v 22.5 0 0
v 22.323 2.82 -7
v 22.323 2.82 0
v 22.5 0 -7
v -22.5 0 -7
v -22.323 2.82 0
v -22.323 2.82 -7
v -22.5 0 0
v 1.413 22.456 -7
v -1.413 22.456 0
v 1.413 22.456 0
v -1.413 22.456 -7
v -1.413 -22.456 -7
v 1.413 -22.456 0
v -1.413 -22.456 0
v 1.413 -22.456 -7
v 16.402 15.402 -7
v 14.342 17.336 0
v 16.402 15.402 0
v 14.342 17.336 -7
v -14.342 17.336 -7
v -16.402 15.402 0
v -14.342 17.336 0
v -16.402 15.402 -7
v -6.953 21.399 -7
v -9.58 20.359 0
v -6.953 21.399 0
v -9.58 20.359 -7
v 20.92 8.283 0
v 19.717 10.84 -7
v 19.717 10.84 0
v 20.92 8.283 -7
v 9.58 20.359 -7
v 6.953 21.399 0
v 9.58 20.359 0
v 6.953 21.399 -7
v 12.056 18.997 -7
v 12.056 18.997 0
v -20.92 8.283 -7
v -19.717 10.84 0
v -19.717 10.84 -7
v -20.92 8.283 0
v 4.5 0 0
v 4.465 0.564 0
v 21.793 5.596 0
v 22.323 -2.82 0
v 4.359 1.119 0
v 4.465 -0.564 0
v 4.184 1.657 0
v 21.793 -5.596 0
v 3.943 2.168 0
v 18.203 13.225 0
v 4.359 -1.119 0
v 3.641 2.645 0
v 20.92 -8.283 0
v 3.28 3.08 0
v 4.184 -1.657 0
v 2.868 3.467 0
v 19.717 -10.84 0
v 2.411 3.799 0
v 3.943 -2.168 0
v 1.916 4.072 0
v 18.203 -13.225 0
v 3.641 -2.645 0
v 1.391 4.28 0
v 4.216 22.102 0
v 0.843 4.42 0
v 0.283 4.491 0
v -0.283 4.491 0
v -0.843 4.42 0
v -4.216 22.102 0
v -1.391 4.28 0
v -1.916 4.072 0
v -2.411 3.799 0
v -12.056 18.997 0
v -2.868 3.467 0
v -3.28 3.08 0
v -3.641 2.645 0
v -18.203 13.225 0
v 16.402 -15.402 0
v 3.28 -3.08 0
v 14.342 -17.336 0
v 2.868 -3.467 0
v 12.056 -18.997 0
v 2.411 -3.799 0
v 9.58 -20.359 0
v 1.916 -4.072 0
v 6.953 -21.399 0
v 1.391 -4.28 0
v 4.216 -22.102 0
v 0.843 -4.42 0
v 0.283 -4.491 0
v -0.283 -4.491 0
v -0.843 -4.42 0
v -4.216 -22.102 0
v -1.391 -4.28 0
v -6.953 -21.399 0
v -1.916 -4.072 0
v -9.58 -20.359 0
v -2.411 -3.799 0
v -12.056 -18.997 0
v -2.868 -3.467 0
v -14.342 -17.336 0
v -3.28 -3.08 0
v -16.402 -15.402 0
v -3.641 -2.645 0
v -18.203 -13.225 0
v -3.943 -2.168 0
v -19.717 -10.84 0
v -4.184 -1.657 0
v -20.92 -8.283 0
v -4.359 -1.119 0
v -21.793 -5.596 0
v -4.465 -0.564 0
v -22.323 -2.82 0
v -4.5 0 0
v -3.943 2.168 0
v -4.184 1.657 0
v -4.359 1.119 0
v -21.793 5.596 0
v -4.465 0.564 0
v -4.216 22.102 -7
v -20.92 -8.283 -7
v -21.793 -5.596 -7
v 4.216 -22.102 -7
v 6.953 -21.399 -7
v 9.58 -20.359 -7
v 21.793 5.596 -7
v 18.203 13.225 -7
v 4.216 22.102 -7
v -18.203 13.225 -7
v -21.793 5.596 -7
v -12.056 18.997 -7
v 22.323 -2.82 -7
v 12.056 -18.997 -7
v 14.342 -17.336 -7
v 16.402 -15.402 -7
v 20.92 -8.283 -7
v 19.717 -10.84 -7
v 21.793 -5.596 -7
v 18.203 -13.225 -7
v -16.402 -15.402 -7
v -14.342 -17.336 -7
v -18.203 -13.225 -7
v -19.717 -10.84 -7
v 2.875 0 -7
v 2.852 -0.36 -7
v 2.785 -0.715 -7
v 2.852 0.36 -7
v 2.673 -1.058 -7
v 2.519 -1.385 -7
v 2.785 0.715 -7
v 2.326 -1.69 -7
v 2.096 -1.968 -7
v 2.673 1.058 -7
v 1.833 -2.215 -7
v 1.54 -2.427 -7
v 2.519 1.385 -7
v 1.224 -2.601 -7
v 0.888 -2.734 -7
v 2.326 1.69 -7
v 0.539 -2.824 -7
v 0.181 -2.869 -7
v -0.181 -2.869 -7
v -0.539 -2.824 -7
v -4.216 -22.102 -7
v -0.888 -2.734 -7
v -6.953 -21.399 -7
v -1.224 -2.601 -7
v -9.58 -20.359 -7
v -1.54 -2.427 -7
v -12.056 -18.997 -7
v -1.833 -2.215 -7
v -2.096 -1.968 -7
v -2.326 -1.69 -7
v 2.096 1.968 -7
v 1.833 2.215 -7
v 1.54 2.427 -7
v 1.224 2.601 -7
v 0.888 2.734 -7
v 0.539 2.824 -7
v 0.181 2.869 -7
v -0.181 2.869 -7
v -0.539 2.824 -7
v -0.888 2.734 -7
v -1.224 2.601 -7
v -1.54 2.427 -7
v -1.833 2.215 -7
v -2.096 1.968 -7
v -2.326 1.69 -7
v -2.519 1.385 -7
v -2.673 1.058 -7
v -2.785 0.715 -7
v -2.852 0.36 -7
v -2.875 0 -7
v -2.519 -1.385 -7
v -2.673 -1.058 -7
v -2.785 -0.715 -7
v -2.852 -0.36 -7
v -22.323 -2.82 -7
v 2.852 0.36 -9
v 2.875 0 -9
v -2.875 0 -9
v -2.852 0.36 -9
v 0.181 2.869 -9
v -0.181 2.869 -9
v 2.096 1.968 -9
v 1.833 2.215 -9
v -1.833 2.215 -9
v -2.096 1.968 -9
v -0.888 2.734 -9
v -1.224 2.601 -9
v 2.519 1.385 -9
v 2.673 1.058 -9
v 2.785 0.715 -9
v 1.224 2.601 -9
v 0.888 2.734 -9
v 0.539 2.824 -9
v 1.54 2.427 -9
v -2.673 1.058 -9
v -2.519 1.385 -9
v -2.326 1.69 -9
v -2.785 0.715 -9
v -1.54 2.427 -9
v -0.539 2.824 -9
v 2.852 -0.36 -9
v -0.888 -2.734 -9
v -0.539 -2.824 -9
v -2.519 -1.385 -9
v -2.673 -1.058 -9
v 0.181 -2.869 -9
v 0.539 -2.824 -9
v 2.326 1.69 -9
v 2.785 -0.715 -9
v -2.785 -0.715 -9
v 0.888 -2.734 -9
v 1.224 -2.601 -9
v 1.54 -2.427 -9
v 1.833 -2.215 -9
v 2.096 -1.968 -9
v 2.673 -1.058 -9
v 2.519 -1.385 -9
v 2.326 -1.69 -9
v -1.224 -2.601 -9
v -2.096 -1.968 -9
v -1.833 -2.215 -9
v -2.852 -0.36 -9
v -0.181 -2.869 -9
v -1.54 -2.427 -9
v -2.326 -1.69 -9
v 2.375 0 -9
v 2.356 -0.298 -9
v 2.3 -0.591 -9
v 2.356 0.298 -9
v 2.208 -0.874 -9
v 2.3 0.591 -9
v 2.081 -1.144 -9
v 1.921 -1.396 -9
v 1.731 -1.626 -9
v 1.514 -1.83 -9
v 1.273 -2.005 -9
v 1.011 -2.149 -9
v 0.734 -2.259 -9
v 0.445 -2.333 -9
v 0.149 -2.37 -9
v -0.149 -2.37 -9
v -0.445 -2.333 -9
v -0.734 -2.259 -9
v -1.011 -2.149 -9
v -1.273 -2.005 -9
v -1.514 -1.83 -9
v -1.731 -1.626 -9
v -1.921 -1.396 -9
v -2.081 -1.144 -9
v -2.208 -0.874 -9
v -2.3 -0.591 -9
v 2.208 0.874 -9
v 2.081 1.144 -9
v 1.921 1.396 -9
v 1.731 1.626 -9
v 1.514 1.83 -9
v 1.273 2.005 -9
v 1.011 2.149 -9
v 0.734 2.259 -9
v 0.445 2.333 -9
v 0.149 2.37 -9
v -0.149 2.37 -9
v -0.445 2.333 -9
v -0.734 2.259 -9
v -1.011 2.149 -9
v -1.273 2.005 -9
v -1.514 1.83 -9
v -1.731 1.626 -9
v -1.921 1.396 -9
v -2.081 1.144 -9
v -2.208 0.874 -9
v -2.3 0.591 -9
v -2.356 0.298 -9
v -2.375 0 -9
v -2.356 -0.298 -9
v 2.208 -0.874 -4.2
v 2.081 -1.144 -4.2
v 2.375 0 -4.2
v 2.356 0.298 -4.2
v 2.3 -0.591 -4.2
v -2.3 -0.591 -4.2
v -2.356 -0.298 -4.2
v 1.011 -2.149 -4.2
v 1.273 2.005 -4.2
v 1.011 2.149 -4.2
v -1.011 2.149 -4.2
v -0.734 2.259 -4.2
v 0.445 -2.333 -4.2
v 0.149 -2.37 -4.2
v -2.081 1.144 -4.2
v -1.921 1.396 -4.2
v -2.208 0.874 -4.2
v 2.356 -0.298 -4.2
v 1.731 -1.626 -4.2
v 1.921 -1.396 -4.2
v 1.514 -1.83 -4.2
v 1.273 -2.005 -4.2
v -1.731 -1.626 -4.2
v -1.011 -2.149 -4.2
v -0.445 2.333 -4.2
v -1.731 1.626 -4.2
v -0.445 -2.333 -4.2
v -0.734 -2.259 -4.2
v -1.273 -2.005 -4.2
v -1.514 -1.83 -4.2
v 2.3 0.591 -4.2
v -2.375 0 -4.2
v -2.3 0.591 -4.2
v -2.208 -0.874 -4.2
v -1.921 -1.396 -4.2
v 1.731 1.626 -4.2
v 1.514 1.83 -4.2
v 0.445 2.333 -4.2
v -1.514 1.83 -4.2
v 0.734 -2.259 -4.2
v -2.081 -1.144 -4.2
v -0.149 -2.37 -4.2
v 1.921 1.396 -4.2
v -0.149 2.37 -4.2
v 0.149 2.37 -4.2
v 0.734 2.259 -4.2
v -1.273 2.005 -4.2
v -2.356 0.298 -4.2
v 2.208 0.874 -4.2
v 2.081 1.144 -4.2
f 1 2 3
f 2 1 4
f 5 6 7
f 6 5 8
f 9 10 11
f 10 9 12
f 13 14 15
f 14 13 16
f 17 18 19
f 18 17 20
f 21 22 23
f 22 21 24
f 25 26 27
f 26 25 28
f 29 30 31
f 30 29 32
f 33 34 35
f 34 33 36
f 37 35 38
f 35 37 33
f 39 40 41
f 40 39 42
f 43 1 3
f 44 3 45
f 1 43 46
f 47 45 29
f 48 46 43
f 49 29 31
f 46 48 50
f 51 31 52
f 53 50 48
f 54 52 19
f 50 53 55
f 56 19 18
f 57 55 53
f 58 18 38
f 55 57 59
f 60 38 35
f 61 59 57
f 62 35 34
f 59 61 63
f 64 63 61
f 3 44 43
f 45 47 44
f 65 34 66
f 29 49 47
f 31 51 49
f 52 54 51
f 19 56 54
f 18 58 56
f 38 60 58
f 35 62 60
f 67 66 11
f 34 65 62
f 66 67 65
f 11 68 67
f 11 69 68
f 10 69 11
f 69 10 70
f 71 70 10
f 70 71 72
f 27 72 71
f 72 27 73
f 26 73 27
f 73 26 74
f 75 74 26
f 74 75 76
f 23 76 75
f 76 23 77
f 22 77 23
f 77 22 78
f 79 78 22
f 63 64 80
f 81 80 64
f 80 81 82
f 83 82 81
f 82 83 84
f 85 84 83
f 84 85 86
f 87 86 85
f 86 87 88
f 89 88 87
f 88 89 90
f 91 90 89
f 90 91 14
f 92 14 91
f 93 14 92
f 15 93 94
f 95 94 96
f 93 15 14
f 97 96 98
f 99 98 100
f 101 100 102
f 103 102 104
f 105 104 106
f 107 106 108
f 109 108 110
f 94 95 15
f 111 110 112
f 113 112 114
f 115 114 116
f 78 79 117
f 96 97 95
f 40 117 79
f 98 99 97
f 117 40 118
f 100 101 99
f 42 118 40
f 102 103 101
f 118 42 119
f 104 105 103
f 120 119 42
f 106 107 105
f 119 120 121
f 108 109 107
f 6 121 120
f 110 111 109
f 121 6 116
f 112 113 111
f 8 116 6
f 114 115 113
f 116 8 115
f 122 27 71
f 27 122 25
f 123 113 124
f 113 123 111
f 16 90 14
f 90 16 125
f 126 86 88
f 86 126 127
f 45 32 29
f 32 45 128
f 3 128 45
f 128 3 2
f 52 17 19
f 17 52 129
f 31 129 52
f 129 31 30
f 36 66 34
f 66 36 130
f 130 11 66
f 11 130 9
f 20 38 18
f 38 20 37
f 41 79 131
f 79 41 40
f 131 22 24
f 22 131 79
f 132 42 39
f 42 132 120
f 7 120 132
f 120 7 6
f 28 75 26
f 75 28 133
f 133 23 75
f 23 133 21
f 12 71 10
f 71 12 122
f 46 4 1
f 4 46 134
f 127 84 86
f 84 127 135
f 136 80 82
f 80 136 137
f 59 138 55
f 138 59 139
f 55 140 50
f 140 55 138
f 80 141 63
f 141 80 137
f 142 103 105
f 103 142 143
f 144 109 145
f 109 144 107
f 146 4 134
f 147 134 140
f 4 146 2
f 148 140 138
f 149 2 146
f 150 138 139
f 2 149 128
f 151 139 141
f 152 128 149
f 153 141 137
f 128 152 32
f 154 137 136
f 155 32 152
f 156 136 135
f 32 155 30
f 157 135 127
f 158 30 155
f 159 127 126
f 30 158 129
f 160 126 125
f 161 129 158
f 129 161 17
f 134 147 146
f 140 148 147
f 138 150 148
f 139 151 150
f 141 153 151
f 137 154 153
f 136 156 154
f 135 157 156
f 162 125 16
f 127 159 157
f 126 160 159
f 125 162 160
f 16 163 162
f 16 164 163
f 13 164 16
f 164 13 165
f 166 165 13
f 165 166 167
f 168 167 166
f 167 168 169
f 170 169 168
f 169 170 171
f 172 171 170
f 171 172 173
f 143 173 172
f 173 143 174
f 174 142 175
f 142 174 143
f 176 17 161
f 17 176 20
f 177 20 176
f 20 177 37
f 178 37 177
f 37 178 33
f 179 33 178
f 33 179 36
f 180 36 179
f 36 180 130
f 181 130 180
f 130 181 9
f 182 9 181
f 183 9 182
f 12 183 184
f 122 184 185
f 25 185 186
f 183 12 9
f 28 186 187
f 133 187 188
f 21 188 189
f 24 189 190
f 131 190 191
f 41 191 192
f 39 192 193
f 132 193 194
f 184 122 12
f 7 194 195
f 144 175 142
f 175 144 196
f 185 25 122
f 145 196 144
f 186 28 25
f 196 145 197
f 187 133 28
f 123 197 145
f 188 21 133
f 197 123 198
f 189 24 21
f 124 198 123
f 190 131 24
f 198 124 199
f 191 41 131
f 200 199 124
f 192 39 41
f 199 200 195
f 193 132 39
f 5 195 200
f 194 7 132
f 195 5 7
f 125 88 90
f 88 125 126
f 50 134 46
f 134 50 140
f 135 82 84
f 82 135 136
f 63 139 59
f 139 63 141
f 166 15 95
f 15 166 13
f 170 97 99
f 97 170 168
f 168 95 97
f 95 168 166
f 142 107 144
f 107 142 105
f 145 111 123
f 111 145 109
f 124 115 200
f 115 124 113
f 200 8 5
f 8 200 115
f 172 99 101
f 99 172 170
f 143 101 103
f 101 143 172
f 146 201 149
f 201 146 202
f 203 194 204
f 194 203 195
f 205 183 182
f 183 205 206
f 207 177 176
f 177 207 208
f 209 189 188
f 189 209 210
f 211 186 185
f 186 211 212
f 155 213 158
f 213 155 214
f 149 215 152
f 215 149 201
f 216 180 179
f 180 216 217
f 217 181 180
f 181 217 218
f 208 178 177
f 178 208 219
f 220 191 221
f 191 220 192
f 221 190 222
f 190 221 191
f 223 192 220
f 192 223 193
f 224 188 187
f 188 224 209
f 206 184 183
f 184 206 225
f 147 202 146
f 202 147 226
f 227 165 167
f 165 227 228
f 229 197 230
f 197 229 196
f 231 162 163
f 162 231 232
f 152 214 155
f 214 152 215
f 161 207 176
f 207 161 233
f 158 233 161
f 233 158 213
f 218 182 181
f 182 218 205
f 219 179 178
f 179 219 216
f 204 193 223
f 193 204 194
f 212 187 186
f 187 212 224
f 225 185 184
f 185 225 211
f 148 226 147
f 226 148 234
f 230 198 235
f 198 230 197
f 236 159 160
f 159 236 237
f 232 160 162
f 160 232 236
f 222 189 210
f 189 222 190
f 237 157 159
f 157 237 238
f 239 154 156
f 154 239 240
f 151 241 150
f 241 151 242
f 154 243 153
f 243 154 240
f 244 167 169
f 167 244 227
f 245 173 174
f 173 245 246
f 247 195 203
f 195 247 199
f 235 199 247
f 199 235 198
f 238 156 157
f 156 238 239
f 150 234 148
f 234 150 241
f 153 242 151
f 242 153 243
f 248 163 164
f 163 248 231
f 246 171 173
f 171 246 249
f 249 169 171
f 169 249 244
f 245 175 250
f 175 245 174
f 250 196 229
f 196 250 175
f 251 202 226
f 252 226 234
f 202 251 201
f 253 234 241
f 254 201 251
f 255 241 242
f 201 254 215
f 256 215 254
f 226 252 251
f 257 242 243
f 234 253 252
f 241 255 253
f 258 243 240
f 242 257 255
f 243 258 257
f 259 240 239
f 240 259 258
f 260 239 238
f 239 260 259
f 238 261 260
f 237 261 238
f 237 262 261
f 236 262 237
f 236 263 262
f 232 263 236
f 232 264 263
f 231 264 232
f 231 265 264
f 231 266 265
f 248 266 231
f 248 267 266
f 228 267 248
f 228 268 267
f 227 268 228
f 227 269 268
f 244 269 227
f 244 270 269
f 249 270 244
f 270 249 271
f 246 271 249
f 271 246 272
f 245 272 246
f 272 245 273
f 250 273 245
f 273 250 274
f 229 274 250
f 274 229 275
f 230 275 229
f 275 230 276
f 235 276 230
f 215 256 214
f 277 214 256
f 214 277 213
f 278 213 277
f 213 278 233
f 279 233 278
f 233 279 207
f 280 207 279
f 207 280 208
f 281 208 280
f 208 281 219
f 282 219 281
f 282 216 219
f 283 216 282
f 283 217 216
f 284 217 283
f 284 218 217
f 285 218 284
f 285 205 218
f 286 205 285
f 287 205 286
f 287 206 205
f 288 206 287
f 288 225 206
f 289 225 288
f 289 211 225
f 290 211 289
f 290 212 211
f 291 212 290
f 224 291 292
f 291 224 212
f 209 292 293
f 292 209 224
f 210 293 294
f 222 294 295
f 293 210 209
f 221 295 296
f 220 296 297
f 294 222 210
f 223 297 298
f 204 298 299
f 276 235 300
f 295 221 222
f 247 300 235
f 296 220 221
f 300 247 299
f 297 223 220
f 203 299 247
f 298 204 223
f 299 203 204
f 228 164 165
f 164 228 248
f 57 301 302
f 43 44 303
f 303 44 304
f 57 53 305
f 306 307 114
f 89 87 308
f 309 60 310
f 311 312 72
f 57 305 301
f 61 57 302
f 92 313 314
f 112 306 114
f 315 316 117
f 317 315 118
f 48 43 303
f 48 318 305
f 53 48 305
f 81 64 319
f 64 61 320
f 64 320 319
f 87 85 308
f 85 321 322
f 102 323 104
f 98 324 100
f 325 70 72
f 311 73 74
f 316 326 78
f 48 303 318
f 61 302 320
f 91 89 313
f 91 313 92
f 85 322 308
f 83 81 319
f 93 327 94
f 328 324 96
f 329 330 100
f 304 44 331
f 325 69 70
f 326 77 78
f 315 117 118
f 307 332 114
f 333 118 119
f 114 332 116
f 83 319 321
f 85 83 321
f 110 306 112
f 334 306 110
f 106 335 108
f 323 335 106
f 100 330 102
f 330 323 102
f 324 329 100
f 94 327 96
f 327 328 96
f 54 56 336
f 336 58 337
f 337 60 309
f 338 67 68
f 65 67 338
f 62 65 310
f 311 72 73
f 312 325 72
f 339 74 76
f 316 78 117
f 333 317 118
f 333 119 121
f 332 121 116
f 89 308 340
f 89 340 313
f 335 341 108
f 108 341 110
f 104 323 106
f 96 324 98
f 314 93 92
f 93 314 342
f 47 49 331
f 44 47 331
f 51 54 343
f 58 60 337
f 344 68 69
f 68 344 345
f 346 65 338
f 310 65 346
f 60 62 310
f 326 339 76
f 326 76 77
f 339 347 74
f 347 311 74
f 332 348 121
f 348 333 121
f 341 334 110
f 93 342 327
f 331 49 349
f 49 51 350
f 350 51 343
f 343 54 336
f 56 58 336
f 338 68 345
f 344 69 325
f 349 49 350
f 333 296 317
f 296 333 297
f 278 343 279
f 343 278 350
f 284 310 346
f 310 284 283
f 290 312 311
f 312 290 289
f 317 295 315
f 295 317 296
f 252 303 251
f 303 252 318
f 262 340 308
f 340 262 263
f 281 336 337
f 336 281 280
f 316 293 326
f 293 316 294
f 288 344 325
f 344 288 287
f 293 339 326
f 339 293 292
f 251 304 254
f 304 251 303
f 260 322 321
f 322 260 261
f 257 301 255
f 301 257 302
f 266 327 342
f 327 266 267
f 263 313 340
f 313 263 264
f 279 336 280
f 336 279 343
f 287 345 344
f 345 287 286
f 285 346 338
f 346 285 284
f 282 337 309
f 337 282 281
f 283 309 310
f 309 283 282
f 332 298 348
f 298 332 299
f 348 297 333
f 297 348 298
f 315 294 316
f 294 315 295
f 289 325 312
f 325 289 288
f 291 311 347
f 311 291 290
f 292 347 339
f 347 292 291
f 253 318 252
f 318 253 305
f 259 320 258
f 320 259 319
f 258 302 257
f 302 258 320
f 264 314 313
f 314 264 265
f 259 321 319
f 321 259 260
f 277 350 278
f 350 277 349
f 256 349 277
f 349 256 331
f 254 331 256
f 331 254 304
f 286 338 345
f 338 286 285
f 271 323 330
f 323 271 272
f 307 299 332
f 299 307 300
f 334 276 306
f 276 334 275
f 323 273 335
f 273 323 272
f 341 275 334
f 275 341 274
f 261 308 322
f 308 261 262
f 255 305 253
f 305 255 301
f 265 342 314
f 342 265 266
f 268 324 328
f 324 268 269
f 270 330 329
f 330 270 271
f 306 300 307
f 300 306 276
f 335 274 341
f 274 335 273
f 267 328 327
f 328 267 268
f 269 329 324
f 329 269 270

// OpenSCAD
$fn = 50;


difference() {
	union() {
		translate(v = [0, 0, -7.0000000000]) {
			cylinder(h = 7, r = 22.5000000000);
		}
		translate(v = [0, 0, -9.0000000000]) {
			cylinder(h = 9, r = 2.8750000000);
		}
	}
	union() {
		translate(v = [0, 0, 0]) {
			rotate(a = [0, 0, 0]) {
				difference() {
					union() {
						#translate(v = [0, 0, -9.0000000000]) {
							cylinder(h = 9, r = 2.2500000000);
						}
						#translate(v = [0, 0, -4.2000000000]) {
							cylinder(h = 4.2000000000, r1 = 2.3750000000, r2 = 4.5000000000);
						}
						#translate(v = [0, 0, -9.0000000000]) {
							cylinder(h = 9, r = 2.3750000000);
						}
						#translate(v = [0, 0, -9.0000000000]) {
							cylinder(h = 9, r = 2.2500000000);
						}
					}
					union();
				}
			}
		}
	}
}
